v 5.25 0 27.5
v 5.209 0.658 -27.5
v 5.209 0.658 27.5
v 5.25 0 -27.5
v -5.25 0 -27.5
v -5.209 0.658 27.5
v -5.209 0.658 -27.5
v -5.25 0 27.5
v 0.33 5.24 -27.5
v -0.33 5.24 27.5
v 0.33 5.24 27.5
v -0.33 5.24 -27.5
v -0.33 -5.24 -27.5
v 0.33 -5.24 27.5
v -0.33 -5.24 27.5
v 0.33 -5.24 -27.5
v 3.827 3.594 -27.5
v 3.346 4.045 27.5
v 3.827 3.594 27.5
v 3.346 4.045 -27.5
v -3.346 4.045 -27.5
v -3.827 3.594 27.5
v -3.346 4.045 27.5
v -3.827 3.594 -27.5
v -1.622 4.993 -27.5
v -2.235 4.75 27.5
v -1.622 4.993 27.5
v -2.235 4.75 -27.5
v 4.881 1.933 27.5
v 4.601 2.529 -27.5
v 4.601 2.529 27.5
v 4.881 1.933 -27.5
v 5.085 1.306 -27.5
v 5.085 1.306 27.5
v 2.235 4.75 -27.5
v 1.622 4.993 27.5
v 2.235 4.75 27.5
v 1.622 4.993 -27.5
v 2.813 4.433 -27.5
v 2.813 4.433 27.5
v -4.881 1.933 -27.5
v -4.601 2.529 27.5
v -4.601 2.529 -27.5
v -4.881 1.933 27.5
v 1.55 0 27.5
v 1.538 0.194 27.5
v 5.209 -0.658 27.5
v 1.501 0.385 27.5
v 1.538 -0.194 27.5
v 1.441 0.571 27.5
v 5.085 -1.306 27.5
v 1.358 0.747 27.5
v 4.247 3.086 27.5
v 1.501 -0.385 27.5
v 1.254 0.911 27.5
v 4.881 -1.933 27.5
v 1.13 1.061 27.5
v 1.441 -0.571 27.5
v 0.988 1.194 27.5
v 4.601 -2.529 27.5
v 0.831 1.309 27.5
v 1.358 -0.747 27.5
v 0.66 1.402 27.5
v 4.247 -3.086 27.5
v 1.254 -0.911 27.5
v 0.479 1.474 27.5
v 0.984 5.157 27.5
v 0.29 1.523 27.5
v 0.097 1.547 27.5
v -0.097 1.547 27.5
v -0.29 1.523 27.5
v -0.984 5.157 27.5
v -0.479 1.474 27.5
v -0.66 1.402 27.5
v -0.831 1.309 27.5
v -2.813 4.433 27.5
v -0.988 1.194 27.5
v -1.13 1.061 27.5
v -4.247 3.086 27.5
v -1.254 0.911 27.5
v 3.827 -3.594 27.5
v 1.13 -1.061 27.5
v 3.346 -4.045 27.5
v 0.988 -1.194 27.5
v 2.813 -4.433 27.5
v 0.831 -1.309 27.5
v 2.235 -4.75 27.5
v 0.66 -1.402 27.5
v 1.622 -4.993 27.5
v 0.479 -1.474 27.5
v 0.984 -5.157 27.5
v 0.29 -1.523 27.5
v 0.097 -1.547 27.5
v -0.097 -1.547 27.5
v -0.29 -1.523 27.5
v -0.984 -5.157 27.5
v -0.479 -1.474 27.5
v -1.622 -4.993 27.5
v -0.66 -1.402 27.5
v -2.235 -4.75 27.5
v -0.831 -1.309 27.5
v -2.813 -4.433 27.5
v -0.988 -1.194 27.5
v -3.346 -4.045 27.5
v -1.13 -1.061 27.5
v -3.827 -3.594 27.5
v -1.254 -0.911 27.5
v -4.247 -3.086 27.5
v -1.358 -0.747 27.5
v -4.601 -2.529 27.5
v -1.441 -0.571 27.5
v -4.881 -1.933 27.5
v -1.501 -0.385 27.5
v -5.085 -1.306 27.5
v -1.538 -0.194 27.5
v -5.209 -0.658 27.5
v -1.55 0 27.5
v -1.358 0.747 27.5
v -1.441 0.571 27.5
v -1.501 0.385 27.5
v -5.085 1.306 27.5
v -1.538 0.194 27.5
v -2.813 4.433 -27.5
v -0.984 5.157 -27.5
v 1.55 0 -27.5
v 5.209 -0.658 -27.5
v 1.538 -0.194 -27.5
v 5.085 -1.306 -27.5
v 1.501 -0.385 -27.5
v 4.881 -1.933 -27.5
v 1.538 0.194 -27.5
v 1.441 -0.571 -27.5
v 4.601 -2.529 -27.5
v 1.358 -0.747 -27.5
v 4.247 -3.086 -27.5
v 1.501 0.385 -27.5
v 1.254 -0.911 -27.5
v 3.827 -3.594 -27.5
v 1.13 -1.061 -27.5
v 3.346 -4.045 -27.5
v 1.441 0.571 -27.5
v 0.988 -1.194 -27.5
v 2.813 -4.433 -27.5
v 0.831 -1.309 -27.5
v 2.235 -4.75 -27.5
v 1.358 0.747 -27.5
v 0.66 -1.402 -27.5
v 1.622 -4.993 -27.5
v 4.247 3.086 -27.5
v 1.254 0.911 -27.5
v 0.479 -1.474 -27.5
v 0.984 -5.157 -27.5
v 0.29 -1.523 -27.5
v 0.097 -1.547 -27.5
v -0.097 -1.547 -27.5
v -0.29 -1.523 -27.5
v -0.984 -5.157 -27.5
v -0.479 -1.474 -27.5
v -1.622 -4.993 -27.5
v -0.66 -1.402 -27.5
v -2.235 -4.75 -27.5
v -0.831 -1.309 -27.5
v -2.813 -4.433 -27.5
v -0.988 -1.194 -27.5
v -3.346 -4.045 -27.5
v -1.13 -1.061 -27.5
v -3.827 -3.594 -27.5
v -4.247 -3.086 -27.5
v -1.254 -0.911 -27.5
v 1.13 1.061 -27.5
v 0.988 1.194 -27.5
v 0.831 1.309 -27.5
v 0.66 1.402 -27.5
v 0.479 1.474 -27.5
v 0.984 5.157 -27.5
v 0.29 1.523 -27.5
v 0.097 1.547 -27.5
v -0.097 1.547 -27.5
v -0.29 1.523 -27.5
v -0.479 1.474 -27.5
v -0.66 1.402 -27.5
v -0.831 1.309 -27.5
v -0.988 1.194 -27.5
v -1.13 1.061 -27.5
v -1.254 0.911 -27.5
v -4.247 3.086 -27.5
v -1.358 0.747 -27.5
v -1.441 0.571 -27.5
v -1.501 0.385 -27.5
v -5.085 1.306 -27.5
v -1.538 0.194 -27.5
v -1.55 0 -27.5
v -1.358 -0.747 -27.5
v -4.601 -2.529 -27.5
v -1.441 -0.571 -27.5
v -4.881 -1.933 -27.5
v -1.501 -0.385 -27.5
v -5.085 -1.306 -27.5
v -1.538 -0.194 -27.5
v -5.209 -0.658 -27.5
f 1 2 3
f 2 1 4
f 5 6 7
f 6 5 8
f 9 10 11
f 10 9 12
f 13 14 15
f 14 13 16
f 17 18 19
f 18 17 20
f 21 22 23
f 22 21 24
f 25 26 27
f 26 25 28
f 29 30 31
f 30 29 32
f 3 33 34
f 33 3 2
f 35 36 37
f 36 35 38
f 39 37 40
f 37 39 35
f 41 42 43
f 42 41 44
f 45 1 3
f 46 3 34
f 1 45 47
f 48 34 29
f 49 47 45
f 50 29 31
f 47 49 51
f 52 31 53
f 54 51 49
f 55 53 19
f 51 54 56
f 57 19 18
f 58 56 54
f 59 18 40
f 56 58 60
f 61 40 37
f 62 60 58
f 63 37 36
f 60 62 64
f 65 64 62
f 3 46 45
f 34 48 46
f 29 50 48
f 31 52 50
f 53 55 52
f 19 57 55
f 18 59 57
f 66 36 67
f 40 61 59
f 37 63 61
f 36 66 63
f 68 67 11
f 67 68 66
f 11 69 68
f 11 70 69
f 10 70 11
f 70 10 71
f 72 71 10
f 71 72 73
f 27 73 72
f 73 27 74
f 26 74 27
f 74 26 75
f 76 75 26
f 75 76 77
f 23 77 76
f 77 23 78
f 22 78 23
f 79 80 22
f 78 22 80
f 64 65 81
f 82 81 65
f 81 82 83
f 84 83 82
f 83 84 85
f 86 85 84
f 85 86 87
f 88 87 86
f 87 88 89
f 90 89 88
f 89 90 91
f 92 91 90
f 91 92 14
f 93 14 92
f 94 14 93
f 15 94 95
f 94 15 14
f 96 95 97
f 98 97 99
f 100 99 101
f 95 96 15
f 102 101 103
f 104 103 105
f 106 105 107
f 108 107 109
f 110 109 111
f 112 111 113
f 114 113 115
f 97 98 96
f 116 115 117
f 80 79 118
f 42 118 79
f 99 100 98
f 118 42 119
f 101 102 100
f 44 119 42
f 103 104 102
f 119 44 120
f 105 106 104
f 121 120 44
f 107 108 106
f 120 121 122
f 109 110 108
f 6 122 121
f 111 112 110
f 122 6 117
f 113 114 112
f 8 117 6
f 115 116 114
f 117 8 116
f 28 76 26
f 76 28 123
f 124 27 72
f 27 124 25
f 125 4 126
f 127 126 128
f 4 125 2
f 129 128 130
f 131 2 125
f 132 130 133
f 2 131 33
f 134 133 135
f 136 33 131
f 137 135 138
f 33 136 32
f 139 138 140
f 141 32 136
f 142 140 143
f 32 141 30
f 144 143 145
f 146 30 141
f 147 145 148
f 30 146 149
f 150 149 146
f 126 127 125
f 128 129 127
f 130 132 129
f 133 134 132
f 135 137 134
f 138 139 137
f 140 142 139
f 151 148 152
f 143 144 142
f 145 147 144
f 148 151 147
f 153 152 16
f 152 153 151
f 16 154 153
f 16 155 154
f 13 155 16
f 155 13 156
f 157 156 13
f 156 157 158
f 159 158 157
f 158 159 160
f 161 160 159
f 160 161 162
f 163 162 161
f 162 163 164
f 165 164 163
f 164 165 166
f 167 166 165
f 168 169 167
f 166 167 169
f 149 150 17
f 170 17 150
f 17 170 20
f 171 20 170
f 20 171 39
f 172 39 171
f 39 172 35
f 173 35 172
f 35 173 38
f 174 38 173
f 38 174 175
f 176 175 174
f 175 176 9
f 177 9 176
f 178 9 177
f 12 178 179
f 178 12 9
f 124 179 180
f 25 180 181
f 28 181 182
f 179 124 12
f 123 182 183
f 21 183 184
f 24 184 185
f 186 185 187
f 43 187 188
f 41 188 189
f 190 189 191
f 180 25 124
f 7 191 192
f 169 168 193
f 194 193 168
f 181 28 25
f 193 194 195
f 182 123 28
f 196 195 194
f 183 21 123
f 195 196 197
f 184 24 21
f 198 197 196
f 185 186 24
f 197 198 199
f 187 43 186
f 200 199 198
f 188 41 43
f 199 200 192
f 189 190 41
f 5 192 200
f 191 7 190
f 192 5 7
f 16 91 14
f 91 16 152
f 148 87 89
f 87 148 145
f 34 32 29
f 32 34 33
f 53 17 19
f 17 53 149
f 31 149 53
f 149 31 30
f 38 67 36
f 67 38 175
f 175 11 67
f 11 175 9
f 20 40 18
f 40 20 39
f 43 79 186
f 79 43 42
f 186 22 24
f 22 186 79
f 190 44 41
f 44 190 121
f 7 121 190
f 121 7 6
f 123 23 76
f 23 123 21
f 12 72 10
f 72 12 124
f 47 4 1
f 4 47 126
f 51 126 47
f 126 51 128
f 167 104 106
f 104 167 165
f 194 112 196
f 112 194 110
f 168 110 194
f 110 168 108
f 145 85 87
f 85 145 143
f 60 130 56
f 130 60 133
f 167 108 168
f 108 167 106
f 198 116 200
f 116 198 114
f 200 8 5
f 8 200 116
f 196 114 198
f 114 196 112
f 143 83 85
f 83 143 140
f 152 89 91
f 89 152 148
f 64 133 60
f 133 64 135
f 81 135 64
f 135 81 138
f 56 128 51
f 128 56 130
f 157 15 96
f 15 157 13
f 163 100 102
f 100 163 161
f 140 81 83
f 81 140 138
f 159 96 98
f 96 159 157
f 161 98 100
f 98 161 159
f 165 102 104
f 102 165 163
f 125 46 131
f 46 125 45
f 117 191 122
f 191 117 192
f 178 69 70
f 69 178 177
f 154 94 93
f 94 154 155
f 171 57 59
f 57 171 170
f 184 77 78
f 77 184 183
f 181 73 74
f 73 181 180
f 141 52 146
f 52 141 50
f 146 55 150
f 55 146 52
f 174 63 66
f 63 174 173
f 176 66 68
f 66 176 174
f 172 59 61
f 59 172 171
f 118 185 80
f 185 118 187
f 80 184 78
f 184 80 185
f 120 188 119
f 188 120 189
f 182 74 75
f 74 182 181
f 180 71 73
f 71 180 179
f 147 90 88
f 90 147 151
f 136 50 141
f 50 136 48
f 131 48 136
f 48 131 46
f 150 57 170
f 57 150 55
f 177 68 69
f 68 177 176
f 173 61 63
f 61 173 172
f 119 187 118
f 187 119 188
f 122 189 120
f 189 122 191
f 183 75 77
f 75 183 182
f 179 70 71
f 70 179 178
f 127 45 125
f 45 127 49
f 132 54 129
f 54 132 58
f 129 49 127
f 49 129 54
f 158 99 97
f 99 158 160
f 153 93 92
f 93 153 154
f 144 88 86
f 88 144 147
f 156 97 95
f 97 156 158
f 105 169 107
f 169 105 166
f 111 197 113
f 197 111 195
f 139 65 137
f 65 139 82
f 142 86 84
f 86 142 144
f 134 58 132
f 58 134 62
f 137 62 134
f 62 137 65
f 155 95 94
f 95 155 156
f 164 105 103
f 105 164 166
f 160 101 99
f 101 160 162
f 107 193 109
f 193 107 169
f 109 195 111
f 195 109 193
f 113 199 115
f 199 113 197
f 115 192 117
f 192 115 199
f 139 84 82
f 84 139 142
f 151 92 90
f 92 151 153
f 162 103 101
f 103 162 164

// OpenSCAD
$fn = 50;


difference() {
	union() {
		translate(v = [0, 0, -27.5000000000]) {
			cylinder(h = 55, r = 5.2500000000);
		}
	}
	union() {
		translate(v = [0, 0, -100.0000000000]) {
			cylinder(h = 200, r = 1.5500000000);
		}
	}
}
